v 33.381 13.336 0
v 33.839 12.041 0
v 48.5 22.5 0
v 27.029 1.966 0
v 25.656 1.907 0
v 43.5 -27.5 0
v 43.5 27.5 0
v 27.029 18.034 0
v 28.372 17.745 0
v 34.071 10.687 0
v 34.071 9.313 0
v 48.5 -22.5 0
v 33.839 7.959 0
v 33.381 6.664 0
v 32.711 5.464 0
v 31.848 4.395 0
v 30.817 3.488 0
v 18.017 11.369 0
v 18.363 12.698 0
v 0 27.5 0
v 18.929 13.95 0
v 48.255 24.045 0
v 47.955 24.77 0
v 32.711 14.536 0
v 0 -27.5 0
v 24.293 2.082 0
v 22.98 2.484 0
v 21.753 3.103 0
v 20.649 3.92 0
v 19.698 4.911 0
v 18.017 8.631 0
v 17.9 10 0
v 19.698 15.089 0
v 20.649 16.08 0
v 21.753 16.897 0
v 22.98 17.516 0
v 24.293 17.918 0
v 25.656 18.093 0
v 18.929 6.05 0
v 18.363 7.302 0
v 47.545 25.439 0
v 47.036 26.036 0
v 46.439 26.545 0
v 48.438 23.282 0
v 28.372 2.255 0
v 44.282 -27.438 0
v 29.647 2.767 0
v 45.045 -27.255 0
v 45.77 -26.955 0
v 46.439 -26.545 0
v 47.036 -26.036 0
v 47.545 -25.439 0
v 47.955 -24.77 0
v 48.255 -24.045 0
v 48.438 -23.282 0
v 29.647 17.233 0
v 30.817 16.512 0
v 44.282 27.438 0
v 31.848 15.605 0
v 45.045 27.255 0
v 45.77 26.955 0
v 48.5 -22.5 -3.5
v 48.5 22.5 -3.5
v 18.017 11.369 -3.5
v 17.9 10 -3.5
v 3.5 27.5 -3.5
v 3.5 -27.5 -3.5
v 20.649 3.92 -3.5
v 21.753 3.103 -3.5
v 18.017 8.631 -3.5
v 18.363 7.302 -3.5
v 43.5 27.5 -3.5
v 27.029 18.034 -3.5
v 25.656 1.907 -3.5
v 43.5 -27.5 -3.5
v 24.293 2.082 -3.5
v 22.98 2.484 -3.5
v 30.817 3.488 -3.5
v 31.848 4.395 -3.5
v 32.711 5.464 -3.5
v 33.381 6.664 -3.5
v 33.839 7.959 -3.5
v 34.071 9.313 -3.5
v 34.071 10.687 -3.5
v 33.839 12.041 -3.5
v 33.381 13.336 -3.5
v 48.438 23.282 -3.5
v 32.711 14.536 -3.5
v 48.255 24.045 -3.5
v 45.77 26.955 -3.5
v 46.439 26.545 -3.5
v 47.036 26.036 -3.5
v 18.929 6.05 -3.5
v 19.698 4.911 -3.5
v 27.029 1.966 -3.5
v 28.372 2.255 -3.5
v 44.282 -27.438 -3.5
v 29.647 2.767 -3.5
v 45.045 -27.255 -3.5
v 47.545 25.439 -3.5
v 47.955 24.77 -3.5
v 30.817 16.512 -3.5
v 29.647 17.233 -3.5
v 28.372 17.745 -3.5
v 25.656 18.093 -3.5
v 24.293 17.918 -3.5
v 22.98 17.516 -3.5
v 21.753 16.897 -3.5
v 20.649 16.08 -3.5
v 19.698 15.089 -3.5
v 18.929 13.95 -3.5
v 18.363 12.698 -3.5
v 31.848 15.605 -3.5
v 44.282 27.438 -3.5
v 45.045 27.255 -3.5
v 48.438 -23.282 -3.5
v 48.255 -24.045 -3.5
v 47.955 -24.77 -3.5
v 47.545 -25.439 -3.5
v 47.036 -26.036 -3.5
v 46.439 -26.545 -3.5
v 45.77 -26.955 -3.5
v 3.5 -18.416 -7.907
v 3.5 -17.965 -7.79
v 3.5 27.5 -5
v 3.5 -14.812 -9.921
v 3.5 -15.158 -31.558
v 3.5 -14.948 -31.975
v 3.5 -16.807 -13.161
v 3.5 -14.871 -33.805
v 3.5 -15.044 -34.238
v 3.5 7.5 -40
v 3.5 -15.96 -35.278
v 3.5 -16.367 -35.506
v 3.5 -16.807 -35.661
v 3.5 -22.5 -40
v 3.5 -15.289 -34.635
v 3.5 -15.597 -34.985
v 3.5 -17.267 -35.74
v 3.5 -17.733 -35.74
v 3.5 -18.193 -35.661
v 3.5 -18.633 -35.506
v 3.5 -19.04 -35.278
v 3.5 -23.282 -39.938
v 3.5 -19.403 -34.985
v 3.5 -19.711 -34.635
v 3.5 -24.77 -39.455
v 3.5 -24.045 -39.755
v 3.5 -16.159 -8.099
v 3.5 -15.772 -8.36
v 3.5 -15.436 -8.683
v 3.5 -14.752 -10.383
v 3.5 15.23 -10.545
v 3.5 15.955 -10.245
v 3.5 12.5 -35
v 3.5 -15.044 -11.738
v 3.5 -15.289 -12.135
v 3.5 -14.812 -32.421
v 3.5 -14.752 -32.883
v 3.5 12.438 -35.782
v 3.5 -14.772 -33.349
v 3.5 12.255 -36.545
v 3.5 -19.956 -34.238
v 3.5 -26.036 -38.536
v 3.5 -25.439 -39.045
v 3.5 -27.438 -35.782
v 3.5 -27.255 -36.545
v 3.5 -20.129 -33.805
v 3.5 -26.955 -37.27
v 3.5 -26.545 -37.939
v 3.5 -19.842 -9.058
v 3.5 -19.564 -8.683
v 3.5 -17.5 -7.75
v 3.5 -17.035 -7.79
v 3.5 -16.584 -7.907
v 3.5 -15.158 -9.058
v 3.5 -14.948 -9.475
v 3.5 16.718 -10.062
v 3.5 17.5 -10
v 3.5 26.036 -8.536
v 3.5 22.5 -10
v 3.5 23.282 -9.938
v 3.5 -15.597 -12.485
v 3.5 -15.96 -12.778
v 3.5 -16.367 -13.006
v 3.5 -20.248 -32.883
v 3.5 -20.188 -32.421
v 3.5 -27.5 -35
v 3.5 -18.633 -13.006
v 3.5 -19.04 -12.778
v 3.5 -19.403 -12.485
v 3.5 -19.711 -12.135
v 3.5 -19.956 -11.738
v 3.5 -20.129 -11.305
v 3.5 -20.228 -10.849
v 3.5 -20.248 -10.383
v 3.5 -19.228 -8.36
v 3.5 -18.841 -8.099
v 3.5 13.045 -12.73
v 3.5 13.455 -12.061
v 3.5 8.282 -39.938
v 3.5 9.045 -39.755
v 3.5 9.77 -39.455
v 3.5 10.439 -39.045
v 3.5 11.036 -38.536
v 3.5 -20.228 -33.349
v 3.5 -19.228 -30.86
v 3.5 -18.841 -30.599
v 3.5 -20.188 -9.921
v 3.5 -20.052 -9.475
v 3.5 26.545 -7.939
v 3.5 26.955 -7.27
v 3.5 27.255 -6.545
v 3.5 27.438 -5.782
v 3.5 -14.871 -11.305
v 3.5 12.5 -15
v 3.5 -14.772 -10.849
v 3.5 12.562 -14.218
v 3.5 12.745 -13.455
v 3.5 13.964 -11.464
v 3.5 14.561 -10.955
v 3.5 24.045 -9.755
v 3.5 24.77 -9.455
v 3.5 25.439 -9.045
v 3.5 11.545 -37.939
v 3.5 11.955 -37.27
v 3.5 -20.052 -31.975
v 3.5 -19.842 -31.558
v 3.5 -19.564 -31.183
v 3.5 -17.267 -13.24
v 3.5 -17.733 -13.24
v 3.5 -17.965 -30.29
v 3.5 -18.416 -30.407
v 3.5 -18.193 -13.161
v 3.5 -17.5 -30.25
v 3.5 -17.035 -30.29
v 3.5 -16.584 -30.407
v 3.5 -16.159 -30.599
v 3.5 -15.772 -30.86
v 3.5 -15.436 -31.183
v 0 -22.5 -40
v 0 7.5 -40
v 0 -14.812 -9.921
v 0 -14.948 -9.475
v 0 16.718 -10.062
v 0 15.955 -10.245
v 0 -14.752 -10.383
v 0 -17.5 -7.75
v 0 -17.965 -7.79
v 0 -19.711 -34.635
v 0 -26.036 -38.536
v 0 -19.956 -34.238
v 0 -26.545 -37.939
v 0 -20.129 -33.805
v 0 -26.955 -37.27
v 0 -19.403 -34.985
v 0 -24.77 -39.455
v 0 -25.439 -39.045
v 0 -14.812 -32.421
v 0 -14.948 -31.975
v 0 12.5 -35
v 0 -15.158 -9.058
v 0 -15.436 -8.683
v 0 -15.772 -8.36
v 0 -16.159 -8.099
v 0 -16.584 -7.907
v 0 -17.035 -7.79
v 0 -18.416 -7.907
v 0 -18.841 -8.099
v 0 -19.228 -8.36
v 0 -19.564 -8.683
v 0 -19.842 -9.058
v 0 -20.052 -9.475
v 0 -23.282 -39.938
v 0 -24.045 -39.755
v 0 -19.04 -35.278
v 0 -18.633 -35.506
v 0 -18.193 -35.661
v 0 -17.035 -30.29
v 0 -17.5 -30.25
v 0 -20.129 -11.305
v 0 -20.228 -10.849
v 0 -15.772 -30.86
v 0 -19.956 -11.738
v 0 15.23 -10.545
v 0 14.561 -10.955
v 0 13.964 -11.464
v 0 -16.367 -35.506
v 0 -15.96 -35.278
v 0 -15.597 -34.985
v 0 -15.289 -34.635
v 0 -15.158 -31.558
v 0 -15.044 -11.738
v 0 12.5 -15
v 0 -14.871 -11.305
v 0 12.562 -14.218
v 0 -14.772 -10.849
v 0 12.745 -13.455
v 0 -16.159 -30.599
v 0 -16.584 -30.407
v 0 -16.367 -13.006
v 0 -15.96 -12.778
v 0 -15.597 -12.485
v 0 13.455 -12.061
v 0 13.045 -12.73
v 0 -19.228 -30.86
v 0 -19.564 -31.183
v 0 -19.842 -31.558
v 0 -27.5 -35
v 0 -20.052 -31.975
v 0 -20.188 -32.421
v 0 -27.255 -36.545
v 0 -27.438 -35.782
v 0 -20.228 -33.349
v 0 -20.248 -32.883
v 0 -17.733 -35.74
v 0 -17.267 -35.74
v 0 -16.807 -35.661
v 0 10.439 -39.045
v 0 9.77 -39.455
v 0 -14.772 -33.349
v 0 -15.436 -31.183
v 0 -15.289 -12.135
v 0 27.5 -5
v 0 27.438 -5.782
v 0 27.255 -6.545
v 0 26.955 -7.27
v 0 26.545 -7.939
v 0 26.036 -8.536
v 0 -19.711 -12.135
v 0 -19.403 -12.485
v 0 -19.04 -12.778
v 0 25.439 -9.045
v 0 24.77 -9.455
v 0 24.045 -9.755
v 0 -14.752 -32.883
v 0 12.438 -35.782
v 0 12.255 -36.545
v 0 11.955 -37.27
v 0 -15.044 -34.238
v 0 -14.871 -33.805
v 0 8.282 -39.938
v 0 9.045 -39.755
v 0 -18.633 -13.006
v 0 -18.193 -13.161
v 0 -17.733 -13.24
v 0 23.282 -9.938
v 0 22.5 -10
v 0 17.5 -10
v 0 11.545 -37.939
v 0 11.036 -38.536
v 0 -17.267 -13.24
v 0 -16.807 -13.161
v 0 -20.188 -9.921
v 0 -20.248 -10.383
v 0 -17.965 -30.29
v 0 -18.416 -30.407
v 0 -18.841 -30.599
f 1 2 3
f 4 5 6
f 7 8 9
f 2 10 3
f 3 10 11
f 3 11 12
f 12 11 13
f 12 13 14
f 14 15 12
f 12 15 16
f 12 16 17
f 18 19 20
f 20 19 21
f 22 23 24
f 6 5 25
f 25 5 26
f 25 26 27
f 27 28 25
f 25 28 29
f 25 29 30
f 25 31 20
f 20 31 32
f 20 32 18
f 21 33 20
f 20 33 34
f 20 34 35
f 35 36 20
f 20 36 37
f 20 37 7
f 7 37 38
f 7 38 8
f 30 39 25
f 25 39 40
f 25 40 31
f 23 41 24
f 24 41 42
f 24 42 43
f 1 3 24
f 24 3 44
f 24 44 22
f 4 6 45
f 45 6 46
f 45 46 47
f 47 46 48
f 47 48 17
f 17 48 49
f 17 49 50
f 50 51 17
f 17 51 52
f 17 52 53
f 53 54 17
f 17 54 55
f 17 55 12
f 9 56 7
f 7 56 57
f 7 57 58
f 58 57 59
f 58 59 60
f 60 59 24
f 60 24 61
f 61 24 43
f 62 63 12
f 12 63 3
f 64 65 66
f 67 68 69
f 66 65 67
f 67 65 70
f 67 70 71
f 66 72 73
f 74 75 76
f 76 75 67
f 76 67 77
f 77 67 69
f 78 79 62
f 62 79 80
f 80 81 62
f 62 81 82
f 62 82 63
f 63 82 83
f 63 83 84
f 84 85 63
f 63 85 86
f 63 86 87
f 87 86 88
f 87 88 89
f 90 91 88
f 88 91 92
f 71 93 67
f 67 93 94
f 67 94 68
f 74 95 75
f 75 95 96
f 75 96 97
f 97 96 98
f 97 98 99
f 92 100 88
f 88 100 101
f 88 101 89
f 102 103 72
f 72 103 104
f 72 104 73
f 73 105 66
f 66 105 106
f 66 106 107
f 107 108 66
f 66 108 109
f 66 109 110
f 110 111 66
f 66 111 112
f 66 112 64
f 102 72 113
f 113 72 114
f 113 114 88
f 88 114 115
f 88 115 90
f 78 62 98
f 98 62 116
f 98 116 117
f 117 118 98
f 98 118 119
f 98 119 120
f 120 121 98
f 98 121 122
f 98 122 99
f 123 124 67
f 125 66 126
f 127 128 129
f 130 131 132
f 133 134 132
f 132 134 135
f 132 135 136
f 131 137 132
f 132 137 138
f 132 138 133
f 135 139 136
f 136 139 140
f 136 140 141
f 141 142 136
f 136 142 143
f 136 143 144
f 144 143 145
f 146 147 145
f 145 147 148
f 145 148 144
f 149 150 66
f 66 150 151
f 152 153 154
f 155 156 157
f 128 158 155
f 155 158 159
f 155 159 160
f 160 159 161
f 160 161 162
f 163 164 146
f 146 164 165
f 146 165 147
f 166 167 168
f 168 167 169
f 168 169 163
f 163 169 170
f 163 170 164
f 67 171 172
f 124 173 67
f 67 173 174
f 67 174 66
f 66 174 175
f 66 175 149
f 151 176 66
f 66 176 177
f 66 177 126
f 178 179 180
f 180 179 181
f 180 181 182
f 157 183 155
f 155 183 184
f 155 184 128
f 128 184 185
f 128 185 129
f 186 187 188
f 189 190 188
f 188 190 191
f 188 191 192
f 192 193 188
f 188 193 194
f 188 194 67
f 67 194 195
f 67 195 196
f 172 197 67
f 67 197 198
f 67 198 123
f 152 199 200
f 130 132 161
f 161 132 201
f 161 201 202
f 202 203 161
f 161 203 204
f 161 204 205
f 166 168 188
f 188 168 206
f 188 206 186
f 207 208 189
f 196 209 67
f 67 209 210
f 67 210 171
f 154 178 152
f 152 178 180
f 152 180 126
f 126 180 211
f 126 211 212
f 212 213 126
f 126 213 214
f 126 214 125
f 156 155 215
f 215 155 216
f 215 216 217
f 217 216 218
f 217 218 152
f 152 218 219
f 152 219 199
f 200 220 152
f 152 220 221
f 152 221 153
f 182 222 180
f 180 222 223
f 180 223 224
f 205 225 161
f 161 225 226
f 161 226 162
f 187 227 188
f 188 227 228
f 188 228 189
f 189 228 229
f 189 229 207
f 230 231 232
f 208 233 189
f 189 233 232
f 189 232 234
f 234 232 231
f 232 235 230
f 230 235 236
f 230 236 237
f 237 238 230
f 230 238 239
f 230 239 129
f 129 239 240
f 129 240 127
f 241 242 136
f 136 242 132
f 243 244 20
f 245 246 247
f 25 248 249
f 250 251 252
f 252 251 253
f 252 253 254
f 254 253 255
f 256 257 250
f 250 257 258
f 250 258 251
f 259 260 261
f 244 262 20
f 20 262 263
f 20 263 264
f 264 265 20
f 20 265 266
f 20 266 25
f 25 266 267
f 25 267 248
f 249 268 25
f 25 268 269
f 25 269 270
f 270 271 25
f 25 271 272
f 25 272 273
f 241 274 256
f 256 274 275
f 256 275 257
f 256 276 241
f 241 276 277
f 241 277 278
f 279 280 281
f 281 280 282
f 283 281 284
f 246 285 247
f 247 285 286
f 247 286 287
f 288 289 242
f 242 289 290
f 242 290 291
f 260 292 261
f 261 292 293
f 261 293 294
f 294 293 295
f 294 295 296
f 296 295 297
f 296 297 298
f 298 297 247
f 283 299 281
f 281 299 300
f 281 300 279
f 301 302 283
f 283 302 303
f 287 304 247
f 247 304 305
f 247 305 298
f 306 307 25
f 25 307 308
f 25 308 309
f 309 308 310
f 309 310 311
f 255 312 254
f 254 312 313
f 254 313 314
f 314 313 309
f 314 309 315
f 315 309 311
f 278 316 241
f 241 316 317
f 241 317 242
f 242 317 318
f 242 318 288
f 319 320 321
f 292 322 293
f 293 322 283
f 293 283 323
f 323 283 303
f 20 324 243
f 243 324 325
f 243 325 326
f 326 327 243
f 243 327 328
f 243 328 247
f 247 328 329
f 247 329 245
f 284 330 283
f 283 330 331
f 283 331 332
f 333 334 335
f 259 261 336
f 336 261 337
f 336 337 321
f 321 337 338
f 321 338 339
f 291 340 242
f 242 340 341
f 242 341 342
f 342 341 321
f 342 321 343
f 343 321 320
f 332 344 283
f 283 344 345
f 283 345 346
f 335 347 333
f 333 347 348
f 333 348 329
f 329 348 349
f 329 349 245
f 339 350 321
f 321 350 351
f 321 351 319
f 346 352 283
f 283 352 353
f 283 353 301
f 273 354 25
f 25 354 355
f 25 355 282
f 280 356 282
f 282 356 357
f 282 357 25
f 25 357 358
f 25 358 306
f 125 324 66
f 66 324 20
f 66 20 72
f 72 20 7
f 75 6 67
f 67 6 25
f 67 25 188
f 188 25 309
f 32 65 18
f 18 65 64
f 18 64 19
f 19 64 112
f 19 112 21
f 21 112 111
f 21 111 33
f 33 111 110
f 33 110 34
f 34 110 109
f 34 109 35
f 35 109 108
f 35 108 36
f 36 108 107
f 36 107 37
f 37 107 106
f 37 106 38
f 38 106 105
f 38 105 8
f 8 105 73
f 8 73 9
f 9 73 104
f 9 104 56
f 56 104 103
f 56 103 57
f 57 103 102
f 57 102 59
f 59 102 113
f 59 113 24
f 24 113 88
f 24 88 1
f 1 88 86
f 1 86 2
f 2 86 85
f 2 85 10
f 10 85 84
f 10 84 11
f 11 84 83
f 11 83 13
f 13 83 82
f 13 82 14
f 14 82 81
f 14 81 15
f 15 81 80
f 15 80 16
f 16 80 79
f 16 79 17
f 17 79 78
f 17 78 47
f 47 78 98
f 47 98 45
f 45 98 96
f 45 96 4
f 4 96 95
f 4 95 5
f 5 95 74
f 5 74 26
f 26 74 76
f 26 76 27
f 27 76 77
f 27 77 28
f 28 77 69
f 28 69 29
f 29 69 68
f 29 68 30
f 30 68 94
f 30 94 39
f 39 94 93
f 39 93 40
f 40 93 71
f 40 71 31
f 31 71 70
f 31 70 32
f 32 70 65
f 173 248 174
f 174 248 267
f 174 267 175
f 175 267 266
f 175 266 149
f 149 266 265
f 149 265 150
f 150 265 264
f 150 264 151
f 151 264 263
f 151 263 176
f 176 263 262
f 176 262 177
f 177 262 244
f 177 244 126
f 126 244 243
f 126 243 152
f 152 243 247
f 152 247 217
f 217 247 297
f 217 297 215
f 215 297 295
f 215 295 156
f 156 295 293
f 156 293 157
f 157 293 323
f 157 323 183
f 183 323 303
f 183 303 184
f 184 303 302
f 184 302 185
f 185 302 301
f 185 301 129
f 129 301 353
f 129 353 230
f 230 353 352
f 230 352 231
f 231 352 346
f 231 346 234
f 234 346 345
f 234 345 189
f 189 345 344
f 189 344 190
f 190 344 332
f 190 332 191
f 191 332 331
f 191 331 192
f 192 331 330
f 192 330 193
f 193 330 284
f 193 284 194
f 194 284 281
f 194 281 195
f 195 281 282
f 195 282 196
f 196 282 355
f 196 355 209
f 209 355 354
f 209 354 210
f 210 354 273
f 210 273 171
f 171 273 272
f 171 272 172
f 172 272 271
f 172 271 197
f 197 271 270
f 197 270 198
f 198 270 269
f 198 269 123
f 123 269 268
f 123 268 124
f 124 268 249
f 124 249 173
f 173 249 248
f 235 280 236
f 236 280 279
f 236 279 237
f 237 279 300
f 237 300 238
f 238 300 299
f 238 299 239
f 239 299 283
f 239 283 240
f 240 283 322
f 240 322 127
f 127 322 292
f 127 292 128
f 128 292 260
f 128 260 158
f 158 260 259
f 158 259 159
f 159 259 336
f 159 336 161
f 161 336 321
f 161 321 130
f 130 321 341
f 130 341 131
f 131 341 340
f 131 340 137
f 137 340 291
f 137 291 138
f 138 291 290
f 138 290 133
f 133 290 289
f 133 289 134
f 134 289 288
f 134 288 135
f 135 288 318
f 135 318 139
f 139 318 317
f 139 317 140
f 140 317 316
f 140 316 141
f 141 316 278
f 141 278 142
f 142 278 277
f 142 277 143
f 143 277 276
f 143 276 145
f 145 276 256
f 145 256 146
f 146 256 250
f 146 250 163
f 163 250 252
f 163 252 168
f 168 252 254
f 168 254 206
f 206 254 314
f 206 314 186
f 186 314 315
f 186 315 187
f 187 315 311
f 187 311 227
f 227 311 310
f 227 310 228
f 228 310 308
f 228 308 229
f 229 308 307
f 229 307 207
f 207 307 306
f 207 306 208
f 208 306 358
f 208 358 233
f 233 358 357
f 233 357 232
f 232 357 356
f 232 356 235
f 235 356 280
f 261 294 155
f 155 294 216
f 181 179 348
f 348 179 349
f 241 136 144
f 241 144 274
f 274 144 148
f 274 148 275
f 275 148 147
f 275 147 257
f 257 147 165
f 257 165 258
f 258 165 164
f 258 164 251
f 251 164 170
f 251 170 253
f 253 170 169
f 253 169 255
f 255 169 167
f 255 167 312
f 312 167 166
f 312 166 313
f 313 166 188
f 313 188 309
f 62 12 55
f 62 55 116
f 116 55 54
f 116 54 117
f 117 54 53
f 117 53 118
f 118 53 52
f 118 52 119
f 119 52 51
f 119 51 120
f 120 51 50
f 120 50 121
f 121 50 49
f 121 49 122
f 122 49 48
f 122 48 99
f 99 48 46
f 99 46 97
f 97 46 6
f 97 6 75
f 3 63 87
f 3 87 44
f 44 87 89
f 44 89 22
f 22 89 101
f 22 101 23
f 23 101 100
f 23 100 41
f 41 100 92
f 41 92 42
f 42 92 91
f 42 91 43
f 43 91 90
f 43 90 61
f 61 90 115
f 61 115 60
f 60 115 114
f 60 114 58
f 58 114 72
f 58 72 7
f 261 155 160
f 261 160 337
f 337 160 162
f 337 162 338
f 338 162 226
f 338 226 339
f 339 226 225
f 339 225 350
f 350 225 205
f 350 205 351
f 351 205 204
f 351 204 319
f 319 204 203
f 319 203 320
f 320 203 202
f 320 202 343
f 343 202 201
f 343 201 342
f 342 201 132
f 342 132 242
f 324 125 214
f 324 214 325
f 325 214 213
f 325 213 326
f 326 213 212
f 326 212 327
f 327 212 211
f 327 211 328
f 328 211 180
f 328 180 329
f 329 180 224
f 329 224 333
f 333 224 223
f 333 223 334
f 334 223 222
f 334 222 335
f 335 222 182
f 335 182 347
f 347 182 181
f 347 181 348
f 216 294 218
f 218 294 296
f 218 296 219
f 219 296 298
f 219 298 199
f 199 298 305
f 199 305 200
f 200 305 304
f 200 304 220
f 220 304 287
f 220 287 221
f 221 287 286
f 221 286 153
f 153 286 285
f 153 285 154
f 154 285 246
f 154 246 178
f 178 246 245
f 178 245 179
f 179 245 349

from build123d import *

# Parameters (mm, degrees)
BOSS_EXTRUDE1_DEPTH  = 27.5
SKETCH4_R            = 8.1
CUT_EXTRUDE1_DEPTH   = 67.638952573
M5_CLEARANCE_HOLE1_D = 5.5
SKETCH7_W            = 30
SKETCH7_H            = 15
CUT_EXTRUDE2_DEPTH   = 67.191011474
FILLET1_R            = 5


with BuildPart() as part:
    # Sketch1 → Boss-Extrude1 (new, symmetric)
    with BuildSketch(Plane(origin=(0, 0, 0), x_dir=(1, 0, 0), z_dir=(0, 1, 0))):
        Polygon((0, 0), (0, 40), (3.5, 40), (3.5, 3.5), (48.5, 3.5), (48.5, 0), align=None)
    extrude(amount=BOSS_EXTRUDE1_DEPTH, both=True)

    # Sketch4 → Cut-Extrude1 (cut, through all)
    with BuildSketch(Plane(origin=(0, 0, -3.5), x_dir=(-1, 0, 0), z_dir=(0, 0, -1))):
        with Locations((-26, 10)):
            Circle(SKETCH4_R)
    extrude(amount=-CUT_EXTRUDE1_DEPTH, mode=Mode.SUBTRACT)

    # M5 Clearance Hole1 (through all)
    with Locations(Plane.ZY):
        with Locations((-10.5, -17.5), (-33, -17.5)):
            Hole(M5_CLEARANCE_HOLE1_D / 2)

    # Sketch7 → Cut-Extrude2 (cut, through all)
    with BuildSketch(Plane(origin=(3.5, 0, 0), x_dir=(0, 0, -1), z_dir=(1, 0, 0))):
        with Locations((25, 20)):
            Rectangle(SKETCH7_W, SKETCH7_H)
    extrude(amount=-CUT_EXTRUDE2_DEPTH, mode=Mode.SUBTRACT)

    # Fillet1
    fillet1_edges = [part.edges().sort_by_distance(p)[0] for p in [
        (1.75, 12.5, -40),
        (1.75, 12.5, -10),
        (1.75, 27.5, -10),
        (1.75, -27.5, -40),
        (48.5, -27.5, -1.75),
        (48.5, 27.5, -1.75),
    ]]
    fillet(fillet1_edges, radius=FILLET1_R)


solid = part.part
